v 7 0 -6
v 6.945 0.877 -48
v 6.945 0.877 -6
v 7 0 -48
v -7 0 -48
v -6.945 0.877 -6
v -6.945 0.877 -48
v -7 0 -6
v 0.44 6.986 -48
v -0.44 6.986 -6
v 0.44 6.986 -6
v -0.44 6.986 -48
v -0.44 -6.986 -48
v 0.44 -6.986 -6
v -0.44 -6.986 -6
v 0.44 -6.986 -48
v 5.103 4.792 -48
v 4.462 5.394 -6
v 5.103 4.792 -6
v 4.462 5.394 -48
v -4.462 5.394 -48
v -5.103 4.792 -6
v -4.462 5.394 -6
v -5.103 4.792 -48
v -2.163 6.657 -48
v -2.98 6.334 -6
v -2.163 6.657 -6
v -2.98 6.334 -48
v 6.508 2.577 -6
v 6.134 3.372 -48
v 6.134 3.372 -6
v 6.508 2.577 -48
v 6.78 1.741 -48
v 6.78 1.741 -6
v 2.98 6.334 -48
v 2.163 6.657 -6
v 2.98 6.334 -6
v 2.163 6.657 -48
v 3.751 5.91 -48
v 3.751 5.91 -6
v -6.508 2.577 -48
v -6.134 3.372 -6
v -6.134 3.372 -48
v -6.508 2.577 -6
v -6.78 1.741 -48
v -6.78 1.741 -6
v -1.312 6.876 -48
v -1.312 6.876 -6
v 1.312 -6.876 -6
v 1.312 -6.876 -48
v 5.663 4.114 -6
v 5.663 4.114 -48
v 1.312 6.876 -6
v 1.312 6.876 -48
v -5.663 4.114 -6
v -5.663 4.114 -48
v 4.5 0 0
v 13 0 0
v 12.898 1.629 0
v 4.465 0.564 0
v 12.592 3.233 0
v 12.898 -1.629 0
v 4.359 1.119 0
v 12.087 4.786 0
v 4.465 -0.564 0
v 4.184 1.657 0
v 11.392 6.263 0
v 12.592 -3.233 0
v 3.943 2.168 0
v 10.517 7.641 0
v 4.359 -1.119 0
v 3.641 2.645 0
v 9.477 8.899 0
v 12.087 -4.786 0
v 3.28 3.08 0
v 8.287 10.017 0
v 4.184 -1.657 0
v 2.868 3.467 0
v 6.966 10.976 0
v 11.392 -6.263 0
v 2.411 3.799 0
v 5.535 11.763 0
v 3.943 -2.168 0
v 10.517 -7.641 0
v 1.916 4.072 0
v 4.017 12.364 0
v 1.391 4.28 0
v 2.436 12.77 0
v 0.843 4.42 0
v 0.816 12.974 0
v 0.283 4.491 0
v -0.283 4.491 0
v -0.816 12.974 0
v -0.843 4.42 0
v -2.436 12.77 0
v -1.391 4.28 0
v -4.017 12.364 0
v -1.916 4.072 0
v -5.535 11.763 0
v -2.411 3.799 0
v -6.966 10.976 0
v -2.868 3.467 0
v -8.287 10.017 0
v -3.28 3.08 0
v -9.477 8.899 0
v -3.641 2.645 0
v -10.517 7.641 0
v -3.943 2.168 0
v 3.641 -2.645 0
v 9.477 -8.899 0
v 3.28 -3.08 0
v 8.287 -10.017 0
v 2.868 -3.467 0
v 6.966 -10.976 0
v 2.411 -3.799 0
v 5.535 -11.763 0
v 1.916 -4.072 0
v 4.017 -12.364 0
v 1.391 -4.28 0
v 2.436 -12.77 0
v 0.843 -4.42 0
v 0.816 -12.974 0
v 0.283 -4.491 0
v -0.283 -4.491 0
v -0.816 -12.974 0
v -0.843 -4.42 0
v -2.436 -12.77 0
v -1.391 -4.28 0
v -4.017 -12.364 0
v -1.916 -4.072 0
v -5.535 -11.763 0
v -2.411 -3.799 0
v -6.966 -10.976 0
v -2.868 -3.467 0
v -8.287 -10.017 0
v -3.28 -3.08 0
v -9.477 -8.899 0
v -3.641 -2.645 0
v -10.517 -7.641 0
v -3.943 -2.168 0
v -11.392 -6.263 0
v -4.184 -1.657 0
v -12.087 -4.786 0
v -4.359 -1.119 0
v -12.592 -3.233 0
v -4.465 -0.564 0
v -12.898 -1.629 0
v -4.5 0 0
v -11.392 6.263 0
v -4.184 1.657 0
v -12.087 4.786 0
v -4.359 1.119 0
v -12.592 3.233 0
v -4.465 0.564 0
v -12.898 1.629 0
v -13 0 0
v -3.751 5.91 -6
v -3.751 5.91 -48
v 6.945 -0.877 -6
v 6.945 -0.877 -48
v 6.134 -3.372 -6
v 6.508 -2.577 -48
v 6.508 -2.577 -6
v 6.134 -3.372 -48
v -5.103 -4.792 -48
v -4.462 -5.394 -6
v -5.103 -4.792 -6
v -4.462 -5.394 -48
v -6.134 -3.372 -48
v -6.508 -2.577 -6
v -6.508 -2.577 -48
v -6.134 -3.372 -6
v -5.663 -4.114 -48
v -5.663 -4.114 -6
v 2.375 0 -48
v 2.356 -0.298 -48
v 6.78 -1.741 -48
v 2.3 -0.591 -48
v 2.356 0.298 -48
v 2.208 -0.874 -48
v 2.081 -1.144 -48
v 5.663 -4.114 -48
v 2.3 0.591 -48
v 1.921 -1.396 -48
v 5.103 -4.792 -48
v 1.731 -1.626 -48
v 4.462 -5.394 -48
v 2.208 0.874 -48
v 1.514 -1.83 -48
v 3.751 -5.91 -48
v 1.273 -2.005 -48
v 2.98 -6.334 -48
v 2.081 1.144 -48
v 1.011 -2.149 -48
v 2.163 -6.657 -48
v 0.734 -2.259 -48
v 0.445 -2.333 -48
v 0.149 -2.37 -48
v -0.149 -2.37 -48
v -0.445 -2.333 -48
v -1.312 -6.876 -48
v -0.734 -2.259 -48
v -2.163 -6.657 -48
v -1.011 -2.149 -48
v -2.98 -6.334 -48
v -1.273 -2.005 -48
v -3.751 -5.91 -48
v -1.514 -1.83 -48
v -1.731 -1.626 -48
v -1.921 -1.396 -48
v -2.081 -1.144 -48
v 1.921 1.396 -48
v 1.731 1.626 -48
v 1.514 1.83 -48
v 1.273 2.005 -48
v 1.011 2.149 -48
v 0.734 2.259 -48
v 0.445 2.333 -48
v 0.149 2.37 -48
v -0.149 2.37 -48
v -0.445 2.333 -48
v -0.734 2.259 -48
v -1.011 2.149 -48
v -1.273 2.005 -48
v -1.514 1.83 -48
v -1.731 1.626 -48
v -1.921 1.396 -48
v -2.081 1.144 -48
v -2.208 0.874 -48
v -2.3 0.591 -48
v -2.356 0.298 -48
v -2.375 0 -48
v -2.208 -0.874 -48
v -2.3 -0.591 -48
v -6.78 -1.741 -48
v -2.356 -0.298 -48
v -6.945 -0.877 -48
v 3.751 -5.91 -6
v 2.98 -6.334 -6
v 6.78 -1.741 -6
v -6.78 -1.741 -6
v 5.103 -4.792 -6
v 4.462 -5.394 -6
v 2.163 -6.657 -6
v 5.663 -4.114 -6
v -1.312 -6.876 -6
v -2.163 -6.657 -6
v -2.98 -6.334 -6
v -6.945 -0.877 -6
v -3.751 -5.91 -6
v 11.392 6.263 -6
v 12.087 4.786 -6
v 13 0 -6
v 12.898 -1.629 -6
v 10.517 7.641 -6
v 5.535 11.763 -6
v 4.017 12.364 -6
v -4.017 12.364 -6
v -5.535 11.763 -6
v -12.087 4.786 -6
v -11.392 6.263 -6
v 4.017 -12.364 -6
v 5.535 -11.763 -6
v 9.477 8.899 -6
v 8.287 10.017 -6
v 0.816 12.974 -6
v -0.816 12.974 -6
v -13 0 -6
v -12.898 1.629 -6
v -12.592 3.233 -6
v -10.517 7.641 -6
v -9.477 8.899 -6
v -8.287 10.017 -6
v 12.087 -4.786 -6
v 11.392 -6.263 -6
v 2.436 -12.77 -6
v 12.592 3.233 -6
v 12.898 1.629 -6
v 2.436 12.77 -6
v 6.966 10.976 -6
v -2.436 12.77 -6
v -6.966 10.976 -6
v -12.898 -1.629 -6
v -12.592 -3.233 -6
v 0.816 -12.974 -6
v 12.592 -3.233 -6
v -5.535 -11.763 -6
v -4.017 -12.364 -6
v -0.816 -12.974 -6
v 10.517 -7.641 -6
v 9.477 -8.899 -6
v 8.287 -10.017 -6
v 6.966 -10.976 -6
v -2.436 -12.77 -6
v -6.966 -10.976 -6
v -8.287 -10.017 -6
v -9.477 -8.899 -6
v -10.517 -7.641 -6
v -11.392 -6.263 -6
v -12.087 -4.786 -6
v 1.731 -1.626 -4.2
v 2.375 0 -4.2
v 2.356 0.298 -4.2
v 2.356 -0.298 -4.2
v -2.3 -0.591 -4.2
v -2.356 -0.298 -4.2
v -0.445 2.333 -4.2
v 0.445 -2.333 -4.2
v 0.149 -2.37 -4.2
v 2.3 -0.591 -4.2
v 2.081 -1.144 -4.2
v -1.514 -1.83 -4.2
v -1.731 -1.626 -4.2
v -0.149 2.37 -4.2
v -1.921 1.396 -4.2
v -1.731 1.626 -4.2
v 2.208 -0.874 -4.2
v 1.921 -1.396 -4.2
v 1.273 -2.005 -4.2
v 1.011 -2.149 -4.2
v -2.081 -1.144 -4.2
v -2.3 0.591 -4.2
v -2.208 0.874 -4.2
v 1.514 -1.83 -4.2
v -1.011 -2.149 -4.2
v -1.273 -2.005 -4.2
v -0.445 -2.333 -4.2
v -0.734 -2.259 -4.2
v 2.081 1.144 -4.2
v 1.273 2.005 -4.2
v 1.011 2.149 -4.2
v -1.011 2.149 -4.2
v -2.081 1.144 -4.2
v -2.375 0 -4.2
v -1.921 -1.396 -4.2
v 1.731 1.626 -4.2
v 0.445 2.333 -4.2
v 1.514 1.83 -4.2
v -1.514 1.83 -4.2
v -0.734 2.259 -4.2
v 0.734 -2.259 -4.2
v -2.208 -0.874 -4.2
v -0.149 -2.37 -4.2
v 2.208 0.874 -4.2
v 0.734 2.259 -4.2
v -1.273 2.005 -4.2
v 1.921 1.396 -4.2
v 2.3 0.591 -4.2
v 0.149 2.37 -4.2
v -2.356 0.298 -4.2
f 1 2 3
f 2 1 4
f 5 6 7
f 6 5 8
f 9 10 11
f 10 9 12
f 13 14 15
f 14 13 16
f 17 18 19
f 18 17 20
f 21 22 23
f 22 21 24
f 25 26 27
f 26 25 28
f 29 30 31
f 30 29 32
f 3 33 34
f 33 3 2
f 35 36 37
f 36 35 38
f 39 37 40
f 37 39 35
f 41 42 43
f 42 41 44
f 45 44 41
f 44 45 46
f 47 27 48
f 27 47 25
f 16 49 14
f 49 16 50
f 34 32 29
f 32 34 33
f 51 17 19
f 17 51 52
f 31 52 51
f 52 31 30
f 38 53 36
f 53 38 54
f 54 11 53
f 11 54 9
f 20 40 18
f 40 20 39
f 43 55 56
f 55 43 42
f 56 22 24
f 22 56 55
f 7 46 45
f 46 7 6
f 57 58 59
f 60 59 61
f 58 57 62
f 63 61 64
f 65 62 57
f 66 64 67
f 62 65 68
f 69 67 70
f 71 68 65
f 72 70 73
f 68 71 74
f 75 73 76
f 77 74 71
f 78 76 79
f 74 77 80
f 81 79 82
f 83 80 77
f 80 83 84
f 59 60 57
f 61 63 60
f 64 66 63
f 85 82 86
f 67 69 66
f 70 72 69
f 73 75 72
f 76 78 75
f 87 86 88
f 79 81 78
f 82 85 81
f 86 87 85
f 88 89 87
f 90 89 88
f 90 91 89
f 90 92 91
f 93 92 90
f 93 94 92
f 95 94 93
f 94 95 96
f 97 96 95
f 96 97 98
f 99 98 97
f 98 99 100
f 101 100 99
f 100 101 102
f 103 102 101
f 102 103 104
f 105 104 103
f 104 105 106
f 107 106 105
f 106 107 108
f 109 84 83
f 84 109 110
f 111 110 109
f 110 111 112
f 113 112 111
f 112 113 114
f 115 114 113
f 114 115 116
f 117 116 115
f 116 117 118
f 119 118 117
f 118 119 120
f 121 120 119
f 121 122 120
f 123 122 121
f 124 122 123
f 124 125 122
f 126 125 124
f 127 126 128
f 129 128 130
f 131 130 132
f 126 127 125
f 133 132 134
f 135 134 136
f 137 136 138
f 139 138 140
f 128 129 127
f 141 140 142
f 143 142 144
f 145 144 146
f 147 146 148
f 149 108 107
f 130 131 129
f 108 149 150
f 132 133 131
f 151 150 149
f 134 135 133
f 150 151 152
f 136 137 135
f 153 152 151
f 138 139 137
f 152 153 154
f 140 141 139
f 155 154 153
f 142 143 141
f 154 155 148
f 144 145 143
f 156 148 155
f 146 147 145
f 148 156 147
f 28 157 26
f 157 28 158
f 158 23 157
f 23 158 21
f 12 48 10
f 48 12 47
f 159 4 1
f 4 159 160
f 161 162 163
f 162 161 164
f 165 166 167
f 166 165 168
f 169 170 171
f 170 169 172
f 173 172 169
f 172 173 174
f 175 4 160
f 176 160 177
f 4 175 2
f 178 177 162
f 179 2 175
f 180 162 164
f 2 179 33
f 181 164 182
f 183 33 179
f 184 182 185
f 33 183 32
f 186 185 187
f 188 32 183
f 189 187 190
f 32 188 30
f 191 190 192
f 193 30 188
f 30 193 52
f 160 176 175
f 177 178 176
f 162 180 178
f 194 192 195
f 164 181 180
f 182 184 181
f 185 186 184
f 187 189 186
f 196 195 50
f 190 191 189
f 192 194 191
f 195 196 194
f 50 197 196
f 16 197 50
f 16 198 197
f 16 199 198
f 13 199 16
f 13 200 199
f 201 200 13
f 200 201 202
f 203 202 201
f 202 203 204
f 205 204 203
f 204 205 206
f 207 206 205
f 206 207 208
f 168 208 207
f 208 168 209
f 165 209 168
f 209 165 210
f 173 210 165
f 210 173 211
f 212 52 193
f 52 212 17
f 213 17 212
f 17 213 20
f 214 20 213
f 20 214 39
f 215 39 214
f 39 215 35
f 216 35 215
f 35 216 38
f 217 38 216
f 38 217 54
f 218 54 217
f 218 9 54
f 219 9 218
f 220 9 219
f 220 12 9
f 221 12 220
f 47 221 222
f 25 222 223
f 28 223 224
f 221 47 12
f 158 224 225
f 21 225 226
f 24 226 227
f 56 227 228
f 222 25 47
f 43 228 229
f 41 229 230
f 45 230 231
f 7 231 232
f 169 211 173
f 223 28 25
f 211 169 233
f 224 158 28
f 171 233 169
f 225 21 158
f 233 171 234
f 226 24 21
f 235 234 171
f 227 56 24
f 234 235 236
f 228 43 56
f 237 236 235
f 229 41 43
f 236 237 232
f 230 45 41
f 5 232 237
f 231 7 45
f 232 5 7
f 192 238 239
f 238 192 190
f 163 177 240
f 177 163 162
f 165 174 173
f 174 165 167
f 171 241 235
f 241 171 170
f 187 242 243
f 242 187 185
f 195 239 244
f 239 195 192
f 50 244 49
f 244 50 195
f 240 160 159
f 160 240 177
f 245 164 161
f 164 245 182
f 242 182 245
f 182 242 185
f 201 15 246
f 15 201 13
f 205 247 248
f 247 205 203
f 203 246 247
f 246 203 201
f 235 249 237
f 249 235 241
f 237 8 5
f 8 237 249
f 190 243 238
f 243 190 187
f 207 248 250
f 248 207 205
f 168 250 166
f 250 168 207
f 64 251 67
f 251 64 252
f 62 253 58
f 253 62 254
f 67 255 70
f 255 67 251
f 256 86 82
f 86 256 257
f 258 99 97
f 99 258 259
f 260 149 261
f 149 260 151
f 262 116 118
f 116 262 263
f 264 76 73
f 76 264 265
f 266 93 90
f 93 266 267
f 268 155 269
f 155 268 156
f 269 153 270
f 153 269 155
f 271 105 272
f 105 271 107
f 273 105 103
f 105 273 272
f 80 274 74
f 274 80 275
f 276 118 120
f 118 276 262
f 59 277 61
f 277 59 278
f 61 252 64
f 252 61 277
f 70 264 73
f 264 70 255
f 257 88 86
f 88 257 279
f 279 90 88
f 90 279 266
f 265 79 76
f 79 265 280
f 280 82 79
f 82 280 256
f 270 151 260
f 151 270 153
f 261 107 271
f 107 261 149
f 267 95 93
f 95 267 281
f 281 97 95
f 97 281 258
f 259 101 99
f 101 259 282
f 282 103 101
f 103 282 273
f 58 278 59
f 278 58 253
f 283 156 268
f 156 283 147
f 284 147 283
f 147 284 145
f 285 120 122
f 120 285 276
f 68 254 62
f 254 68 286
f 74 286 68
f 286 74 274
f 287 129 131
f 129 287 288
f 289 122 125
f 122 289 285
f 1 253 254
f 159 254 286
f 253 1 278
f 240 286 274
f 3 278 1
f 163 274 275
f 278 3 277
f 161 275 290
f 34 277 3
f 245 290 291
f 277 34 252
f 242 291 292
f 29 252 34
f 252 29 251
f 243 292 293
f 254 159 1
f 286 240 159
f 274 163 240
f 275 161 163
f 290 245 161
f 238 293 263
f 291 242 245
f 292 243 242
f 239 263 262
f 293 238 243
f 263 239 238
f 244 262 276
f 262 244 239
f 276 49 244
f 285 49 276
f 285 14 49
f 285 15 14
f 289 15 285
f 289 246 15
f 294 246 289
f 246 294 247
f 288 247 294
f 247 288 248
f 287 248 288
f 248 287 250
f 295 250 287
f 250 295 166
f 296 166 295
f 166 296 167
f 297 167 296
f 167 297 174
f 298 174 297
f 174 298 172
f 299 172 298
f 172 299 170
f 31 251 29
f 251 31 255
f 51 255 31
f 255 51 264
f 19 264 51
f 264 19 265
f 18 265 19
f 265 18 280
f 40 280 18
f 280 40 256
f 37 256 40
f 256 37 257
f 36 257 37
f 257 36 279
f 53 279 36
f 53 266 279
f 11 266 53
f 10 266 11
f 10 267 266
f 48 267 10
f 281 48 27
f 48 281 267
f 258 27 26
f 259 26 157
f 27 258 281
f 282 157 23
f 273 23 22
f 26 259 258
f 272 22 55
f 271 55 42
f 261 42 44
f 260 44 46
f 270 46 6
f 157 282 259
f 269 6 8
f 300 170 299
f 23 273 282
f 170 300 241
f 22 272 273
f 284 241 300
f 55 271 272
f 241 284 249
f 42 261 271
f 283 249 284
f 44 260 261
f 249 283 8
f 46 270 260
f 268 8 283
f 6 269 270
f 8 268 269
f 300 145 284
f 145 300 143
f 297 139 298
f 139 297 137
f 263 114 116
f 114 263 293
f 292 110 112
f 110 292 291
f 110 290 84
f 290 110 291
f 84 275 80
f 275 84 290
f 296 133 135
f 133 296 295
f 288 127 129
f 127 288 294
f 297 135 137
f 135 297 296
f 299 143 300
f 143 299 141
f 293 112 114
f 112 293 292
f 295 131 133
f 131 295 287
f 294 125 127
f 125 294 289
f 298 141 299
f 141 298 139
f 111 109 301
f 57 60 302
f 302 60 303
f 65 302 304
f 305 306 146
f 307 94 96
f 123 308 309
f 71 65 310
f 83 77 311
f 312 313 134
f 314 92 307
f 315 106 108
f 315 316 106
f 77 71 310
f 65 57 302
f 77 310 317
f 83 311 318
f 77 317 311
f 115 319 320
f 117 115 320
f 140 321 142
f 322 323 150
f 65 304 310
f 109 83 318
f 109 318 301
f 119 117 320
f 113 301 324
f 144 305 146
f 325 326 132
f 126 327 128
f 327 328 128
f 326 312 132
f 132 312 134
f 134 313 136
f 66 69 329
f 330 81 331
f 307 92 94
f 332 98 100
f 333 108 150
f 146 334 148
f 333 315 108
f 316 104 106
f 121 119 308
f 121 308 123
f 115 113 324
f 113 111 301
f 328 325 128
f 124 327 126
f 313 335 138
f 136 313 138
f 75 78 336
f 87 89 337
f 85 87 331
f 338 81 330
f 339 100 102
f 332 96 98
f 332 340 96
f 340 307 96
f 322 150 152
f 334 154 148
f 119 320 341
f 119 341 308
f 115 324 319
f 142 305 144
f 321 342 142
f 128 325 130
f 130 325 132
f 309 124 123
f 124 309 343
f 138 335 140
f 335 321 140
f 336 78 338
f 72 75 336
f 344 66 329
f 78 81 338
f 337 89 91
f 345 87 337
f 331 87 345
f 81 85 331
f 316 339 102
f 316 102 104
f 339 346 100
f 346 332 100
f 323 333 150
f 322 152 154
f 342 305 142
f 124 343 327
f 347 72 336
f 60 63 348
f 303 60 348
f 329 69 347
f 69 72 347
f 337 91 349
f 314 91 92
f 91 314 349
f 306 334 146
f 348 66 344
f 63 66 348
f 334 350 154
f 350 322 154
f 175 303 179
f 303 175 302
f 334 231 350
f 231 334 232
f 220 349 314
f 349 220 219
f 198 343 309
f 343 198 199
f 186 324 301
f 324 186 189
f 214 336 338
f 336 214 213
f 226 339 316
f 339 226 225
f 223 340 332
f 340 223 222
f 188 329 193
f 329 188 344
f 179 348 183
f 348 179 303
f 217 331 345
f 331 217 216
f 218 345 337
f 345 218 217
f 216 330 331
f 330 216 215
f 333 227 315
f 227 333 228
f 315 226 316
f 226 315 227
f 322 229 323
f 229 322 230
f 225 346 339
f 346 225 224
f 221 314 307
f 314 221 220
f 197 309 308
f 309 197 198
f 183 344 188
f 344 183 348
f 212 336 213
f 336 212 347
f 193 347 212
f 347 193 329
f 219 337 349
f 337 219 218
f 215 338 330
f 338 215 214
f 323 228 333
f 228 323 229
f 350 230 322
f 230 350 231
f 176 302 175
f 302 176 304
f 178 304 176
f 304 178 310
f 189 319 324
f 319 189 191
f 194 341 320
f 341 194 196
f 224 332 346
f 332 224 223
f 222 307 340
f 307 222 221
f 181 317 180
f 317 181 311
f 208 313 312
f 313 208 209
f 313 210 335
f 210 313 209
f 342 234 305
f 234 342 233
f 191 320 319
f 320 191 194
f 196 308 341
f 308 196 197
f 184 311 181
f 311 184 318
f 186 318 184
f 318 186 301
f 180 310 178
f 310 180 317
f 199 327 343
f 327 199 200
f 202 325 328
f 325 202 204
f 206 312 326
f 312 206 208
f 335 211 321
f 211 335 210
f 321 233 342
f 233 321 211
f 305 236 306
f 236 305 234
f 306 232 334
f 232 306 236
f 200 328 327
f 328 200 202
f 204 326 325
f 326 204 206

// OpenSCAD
$fn = 50;


difference() {
	union() {
		translate(v = [0, 0, -48.0000000000]) {
			cylinder(h = 48, r = 7.0000000000);
		}
		translate(v = [0, 0, -6.0000000000]) {
			cylinder(h = 6, r = 13.0000000000);
		}
	}
	union() {
		translate(v = [0, 0, 0]) {
			rotate(a = [0, 0, 0]) {
				difference() {
					union() {
						#translate(v = [0, 0, -48.0000000000]) {
							cylinder(h = 48, r = 2.2500000000);
						}
						#translate(v = [0, 0, -4.2000000000]) {
							cylinder(h = 4.2000000000, r = 7.0000000000, r1 = 2.3750000000, r2 = 4.5000000000);
						}
						#translate(v = [0, 0, -48.0000000000]) {
							cylinder(h = 48, r = 2.3750000000);
						}
						#translate(v = [0, 0, -48.0000000000]) {
							cylinder(h = 48, r = 2.2500000000);
						}
					}
					union();
				}
			}
		}
	}
}
